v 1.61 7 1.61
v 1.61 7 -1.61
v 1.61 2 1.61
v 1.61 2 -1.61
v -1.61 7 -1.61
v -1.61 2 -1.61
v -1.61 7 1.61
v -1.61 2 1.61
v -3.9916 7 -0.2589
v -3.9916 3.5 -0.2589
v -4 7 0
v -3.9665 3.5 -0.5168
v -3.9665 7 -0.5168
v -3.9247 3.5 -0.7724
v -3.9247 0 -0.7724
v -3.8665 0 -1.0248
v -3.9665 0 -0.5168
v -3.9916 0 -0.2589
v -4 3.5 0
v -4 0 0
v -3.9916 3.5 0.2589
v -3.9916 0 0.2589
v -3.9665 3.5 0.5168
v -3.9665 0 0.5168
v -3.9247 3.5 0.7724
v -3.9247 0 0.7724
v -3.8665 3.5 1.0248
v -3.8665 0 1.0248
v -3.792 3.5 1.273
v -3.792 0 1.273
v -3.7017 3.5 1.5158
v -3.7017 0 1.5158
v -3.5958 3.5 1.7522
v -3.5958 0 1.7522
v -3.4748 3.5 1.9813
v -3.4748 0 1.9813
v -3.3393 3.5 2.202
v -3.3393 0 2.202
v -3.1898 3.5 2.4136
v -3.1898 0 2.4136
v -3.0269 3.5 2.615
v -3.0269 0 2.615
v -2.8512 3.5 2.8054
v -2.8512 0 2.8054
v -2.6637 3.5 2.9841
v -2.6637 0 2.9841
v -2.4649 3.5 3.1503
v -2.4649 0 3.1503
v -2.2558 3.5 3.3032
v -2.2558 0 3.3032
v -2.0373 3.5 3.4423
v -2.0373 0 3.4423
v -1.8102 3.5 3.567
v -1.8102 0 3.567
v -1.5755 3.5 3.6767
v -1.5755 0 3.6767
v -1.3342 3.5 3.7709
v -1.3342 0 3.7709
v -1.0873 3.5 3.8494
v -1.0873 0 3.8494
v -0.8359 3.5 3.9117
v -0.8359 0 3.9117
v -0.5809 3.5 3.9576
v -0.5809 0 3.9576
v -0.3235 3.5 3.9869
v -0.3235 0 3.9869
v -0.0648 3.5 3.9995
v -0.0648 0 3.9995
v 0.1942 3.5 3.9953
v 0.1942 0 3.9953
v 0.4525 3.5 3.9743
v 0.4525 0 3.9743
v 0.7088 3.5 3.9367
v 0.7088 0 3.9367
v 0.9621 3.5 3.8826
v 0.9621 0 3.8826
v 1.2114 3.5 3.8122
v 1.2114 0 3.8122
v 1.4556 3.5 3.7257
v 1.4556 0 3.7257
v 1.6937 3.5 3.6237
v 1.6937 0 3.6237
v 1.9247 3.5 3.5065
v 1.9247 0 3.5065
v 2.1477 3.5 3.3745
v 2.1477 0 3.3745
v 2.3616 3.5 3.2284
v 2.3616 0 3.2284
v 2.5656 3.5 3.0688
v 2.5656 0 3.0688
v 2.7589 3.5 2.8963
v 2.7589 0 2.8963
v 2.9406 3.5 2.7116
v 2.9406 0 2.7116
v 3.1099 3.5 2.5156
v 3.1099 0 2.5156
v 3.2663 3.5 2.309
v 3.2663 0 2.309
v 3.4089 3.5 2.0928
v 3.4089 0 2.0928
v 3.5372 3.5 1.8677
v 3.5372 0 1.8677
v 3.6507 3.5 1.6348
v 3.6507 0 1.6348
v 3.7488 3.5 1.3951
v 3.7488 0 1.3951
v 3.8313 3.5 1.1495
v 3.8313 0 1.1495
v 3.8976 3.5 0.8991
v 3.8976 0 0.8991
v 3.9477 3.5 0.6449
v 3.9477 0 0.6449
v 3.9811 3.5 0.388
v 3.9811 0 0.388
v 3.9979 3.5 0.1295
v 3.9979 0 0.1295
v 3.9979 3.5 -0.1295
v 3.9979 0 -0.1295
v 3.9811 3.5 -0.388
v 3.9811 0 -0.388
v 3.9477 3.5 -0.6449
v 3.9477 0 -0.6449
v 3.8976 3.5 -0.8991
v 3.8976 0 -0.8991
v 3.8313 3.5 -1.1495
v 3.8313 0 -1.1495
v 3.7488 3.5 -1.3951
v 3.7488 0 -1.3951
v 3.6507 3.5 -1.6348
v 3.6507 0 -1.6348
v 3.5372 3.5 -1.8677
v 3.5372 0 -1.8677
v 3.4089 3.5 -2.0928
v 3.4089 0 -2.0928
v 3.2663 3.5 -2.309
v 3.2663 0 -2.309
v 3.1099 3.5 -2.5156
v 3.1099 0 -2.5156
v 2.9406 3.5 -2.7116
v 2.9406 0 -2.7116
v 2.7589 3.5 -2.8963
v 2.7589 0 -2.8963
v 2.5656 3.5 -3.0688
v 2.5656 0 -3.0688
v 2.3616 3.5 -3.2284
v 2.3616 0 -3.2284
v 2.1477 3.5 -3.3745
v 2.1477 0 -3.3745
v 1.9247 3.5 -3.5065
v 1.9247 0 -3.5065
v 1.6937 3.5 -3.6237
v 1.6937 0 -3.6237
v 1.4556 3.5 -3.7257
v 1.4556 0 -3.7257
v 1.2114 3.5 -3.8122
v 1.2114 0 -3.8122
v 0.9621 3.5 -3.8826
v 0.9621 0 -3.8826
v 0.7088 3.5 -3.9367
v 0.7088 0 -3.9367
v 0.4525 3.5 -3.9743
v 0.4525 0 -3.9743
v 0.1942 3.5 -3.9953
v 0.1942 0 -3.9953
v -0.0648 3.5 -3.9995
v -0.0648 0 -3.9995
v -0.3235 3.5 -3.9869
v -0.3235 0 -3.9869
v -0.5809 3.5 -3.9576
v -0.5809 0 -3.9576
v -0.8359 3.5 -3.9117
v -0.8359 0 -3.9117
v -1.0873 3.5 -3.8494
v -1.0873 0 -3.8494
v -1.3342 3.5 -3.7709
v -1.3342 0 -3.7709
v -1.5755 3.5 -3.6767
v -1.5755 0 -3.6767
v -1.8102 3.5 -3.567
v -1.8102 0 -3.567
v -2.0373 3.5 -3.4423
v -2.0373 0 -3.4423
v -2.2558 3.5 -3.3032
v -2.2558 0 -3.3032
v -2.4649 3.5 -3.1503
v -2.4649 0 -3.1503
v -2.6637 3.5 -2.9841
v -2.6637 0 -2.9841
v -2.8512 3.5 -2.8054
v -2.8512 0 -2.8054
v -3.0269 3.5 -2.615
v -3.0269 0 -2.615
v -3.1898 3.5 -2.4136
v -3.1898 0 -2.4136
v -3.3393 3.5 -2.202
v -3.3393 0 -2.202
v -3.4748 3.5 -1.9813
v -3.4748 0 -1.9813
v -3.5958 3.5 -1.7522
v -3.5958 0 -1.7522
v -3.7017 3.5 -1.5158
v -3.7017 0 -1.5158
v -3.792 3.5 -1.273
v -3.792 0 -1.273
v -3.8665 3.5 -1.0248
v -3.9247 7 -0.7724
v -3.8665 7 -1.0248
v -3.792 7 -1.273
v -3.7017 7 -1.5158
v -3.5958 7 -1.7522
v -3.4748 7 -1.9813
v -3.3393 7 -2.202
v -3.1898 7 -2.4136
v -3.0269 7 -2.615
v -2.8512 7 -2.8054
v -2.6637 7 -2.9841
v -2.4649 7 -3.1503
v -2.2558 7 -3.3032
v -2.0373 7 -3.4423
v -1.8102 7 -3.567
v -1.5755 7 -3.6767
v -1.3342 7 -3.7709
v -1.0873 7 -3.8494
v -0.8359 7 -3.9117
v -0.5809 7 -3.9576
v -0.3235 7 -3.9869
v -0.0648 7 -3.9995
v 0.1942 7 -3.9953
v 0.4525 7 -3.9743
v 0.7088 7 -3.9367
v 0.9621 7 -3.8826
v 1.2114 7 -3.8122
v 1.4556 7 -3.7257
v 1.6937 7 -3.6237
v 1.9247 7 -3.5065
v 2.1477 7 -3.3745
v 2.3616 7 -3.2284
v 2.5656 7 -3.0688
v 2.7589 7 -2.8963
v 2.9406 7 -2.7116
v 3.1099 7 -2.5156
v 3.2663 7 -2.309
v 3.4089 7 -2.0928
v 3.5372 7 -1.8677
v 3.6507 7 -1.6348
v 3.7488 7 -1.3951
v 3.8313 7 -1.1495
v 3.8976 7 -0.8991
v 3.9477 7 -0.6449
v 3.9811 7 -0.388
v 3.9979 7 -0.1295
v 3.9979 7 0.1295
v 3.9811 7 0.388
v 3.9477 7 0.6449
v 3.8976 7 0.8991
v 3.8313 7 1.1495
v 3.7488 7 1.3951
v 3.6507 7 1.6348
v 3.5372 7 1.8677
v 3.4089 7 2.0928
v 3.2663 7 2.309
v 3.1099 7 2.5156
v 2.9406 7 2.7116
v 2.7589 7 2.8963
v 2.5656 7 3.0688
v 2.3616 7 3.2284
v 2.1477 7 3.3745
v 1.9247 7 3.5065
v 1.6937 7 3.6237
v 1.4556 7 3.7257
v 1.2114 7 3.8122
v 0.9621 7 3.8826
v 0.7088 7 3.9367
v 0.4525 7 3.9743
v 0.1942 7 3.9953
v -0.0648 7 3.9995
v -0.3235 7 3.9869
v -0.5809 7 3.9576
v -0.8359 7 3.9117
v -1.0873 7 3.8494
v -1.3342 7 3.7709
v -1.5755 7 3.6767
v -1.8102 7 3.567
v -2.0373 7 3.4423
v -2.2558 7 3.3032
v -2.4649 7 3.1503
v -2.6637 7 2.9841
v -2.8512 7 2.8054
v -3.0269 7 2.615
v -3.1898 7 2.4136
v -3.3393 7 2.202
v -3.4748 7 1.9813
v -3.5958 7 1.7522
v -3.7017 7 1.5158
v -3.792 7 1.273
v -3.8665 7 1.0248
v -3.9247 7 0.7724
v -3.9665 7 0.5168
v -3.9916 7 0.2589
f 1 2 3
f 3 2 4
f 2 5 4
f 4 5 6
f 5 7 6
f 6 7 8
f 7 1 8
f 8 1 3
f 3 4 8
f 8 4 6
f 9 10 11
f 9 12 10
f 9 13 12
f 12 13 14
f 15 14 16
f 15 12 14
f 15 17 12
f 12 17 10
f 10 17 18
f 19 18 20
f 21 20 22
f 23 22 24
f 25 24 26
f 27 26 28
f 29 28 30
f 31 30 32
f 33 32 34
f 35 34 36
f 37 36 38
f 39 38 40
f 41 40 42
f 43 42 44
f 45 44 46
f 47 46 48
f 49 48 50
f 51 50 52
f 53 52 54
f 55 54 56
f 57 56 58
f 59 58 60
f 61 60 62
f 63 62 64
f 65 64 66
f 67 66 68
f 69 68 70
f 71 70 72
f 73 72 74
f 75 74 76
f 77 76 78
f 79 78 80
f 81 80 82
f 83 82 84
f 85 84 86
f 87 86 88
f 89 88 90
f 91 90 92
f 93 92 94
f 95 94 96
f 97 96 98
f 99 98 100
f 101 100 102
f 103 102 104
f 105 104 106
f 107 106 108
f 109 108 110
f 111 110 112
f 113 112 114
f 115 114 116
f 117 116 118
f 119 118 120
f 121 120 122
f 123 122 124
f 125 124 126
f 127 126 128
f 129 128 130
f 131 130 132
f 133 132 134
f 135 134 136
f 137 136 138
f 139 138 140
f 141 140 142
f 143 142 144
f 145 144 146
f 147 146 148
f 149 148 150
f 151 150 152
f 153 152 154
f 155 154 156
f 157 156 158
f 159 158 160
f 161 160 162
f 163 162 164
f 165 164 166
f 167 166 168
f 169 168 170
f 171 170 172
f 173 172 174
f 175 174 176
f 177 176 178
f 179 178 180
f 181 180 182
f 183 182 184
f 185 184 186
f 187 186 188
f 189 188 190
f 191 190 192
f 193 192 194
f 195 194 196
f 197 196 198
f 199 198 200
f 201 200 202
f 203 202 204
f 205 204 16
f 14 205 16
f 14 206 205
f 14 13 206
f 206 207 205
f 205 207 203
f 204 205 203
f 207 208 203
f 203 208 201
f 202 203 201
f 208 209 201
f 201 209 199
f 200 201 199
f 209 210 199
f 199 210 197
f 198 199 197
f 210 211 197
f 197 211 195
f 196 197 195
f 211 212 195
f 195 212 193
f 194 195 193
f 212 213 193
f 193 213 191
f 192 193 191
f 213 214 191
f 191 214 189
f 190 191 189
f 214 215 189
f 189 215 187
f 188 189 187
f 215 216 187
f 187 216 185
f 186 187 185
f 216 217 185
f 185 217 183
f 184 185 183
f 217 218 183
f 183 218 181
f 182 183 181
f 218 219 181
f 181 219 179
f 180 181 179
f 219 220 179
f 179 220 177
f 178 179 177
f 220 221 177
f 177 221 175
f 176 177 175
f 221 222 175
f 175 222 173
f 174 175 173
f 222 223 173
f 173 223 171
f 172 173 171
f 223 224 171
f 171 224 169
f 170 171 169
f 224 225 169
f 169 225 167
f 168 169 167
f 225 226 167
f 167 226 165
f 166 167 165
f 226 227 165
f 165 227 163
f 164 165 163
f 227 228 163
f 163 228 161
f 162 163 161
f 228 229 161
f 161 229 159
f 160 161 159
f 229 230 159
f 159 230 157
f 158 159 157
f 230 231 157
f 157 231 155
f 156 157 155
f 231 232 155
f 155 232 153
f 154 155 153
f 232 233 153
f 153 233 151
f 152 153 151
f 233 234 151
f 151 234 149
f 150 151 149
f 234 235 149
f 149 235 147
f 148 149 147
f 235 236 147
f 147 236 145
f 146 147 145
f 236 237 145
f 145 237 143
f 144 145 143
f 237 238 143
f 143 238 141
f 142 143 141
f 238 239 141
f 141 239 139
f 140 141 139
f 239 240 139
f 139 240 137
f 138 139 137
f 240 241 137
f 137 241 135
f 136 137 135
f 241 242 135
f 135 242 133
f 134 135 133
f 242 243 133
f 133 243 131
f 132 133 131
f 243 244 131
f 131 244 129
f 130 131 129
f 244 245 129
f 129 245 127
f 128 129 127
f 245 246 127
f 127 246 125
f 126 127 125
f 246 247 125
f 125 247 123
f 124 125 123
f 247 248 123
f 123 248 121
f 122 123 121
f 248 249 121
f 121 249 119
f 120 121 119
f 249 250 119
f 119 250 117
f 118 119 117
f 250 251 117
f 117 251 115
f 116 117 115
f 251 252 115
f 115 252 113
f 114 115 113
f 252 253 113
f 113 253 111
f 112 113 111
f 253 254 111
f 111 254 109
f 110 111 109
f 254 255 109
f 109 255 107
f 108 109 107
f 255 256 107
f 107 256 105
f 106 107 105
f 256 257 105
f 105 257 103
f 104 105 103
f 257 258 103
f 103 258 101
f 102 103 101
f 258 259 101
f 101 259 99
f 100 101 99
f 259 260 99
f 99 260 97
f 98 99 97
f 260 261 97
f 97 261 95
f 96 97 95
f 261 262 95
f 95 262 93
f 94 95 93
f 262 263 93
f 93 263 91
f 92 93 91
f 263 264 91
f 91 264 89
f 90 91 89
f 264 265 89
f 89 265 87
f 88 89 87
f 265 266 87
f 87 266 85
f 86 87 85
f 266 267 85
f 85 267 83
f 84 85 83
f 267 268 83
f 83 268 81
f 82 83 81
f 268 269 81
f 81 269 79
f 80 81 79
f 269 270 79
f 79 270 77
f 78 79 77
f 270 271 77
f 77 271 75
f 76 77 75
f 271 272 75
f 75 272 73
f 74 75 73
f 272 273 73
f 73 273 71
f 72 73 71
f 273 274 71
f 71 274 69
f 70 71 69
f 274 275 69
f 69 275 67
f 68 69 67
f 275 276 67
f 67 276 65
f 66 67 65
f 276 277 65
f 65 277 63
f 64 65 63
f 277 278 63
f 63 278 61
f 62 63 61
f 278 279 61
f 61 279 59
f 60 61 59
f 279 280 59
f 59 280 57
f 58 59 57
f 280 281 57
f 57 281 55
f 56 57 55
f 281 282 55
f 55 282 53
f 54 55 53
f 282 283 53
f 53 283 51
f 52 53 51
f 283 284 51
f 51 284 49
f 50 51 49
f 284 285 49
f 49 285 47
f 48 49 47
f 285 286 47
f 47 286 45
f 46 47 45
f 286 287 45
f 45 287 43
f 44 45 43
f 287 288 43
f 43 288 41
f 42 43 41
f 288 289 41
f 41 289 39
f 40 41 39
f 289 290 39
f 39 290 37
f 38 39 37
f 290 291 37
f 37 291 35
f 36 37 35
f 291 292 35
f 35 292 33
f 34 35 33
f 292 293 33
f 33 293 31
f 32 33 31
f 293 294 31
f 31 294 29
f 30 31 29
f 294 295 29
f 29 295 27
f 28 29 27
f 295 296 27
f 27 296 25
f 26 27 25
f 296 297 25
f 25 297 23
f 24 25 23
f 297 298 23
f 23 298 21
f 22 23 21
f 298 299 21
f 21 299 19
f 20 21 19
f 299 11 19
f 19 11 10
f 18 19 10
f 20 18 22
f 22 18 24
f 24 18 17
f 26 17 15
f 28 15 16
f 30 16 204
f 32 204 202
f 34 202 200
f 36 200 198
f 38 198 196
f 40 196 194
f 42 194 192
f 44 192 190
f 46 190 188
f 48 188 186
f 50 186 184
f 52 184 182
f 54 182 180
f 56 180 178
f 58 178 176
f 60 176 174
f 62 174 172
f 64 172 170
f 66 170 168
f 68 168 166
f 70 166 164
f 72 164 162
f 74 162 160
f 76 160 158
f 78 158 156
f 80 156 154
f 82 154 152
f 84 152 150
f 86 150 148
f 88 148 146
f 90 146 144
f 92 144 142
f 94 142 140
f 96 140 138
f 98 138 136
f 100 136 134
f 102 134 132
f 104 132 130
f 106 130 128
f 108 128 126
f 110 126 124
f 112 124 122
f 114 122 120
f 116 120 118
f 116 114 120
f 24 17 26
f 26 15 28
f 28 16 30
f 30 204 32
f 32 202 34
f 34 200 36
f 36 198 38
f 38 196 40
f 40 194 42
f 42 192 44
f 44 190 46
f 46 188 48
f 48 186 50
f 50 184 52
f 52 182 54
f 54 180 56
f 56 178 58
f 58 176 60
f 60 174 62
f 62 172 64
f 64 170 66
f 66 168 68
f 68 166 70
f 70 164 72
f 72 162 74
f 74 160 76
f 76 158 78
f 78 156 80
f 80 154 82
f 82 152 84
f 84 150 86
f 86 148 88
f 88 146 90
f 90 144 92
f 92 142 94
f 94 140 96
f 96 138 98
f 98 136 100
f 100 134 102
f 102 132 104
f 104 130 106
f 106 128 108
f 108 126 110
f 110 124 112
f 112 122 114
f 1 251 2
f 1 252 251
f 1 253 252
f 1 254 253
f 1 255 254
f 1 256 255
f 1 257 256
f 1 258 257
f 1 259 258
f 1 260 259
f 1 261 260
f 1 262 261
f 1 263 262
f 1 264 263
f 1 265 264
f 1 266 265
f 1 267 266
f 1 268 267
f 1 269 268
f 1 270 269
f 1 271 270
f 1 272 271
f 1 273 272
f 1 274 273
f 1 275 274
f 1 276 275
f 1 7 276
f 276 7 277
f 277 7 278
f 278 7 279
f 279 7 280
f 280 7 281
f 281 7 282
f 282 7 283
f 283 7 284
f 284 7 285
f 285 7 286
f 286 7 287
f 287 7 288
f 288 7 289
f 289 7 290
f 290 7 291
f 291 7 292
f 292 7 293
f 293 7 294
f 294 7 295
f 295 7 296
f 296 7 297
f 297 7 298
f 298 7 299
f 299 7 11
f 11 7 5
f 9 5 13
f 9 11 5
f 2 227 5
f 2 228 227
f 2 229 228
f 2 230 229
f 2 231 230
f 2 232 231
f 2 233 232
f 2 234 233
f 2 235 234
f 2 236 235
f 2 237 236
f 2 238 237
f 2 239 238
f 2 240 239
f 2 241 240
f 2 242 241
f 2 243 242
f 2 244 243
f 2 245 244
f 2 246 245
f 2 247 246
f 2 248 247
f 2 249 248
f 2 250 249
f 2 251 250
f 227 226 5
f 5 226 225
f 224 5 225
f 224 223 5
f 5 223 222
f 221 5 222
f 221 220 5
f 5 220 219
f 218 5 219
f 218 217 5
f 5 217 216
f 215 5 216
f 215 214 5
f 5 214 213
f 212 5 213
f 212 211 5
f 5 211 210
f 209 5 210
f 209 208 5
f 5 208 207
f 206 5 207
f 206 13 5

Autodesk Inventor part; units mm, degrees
ref_plane "YZ Plane" through (0, 0, 0) normal (1, 0, 0) x (0, 1, 0)
ref_plane "XZ Plane" through (0, 0, 0) normal (0, 1, 0) x (-1, 0, 0)
ref_plane "XY Plane" through (0, 0, 0) normal (0, 0, 1) x (1, 0, 0)
sketch "Sketch1" plane through (0, 0, 0) normal (0, 1, 0) x (-1, 0, 0)
  circle A0 centre (0, 0) radius 4
  dimension "d0" = 8
extrude "Extrusion1" add sketch "Sketch1" along normal blind 7
sketch "Sketch2" plane through (0, 7, 0) normal (0, 1, 0) x (1, 0, 0)
  line L0 (-1.61, -1.61) -> (1.61, -1.61)
  line L1 (1.61, -1.61) -> (1.61, 1.61)
  line L2 (1.61, 1.61) -> (-1.61, 1.61)
  line L3 (-1.61, 1.61) -> (-1.61, -1.61)
  point P0 (0, 0)
  dimension "d3" = 3.22
  dimension "d4" = 1.61
  dimension "d6" = 1.61
extrude "Extrusion2" cut sketch "Sketch2" against normal blind 5
equation "\"d4\" = 0.5 * d3"
equation "\"d6\" = 0.5 * d3"
properties part number "Wheel_cap_extended"
